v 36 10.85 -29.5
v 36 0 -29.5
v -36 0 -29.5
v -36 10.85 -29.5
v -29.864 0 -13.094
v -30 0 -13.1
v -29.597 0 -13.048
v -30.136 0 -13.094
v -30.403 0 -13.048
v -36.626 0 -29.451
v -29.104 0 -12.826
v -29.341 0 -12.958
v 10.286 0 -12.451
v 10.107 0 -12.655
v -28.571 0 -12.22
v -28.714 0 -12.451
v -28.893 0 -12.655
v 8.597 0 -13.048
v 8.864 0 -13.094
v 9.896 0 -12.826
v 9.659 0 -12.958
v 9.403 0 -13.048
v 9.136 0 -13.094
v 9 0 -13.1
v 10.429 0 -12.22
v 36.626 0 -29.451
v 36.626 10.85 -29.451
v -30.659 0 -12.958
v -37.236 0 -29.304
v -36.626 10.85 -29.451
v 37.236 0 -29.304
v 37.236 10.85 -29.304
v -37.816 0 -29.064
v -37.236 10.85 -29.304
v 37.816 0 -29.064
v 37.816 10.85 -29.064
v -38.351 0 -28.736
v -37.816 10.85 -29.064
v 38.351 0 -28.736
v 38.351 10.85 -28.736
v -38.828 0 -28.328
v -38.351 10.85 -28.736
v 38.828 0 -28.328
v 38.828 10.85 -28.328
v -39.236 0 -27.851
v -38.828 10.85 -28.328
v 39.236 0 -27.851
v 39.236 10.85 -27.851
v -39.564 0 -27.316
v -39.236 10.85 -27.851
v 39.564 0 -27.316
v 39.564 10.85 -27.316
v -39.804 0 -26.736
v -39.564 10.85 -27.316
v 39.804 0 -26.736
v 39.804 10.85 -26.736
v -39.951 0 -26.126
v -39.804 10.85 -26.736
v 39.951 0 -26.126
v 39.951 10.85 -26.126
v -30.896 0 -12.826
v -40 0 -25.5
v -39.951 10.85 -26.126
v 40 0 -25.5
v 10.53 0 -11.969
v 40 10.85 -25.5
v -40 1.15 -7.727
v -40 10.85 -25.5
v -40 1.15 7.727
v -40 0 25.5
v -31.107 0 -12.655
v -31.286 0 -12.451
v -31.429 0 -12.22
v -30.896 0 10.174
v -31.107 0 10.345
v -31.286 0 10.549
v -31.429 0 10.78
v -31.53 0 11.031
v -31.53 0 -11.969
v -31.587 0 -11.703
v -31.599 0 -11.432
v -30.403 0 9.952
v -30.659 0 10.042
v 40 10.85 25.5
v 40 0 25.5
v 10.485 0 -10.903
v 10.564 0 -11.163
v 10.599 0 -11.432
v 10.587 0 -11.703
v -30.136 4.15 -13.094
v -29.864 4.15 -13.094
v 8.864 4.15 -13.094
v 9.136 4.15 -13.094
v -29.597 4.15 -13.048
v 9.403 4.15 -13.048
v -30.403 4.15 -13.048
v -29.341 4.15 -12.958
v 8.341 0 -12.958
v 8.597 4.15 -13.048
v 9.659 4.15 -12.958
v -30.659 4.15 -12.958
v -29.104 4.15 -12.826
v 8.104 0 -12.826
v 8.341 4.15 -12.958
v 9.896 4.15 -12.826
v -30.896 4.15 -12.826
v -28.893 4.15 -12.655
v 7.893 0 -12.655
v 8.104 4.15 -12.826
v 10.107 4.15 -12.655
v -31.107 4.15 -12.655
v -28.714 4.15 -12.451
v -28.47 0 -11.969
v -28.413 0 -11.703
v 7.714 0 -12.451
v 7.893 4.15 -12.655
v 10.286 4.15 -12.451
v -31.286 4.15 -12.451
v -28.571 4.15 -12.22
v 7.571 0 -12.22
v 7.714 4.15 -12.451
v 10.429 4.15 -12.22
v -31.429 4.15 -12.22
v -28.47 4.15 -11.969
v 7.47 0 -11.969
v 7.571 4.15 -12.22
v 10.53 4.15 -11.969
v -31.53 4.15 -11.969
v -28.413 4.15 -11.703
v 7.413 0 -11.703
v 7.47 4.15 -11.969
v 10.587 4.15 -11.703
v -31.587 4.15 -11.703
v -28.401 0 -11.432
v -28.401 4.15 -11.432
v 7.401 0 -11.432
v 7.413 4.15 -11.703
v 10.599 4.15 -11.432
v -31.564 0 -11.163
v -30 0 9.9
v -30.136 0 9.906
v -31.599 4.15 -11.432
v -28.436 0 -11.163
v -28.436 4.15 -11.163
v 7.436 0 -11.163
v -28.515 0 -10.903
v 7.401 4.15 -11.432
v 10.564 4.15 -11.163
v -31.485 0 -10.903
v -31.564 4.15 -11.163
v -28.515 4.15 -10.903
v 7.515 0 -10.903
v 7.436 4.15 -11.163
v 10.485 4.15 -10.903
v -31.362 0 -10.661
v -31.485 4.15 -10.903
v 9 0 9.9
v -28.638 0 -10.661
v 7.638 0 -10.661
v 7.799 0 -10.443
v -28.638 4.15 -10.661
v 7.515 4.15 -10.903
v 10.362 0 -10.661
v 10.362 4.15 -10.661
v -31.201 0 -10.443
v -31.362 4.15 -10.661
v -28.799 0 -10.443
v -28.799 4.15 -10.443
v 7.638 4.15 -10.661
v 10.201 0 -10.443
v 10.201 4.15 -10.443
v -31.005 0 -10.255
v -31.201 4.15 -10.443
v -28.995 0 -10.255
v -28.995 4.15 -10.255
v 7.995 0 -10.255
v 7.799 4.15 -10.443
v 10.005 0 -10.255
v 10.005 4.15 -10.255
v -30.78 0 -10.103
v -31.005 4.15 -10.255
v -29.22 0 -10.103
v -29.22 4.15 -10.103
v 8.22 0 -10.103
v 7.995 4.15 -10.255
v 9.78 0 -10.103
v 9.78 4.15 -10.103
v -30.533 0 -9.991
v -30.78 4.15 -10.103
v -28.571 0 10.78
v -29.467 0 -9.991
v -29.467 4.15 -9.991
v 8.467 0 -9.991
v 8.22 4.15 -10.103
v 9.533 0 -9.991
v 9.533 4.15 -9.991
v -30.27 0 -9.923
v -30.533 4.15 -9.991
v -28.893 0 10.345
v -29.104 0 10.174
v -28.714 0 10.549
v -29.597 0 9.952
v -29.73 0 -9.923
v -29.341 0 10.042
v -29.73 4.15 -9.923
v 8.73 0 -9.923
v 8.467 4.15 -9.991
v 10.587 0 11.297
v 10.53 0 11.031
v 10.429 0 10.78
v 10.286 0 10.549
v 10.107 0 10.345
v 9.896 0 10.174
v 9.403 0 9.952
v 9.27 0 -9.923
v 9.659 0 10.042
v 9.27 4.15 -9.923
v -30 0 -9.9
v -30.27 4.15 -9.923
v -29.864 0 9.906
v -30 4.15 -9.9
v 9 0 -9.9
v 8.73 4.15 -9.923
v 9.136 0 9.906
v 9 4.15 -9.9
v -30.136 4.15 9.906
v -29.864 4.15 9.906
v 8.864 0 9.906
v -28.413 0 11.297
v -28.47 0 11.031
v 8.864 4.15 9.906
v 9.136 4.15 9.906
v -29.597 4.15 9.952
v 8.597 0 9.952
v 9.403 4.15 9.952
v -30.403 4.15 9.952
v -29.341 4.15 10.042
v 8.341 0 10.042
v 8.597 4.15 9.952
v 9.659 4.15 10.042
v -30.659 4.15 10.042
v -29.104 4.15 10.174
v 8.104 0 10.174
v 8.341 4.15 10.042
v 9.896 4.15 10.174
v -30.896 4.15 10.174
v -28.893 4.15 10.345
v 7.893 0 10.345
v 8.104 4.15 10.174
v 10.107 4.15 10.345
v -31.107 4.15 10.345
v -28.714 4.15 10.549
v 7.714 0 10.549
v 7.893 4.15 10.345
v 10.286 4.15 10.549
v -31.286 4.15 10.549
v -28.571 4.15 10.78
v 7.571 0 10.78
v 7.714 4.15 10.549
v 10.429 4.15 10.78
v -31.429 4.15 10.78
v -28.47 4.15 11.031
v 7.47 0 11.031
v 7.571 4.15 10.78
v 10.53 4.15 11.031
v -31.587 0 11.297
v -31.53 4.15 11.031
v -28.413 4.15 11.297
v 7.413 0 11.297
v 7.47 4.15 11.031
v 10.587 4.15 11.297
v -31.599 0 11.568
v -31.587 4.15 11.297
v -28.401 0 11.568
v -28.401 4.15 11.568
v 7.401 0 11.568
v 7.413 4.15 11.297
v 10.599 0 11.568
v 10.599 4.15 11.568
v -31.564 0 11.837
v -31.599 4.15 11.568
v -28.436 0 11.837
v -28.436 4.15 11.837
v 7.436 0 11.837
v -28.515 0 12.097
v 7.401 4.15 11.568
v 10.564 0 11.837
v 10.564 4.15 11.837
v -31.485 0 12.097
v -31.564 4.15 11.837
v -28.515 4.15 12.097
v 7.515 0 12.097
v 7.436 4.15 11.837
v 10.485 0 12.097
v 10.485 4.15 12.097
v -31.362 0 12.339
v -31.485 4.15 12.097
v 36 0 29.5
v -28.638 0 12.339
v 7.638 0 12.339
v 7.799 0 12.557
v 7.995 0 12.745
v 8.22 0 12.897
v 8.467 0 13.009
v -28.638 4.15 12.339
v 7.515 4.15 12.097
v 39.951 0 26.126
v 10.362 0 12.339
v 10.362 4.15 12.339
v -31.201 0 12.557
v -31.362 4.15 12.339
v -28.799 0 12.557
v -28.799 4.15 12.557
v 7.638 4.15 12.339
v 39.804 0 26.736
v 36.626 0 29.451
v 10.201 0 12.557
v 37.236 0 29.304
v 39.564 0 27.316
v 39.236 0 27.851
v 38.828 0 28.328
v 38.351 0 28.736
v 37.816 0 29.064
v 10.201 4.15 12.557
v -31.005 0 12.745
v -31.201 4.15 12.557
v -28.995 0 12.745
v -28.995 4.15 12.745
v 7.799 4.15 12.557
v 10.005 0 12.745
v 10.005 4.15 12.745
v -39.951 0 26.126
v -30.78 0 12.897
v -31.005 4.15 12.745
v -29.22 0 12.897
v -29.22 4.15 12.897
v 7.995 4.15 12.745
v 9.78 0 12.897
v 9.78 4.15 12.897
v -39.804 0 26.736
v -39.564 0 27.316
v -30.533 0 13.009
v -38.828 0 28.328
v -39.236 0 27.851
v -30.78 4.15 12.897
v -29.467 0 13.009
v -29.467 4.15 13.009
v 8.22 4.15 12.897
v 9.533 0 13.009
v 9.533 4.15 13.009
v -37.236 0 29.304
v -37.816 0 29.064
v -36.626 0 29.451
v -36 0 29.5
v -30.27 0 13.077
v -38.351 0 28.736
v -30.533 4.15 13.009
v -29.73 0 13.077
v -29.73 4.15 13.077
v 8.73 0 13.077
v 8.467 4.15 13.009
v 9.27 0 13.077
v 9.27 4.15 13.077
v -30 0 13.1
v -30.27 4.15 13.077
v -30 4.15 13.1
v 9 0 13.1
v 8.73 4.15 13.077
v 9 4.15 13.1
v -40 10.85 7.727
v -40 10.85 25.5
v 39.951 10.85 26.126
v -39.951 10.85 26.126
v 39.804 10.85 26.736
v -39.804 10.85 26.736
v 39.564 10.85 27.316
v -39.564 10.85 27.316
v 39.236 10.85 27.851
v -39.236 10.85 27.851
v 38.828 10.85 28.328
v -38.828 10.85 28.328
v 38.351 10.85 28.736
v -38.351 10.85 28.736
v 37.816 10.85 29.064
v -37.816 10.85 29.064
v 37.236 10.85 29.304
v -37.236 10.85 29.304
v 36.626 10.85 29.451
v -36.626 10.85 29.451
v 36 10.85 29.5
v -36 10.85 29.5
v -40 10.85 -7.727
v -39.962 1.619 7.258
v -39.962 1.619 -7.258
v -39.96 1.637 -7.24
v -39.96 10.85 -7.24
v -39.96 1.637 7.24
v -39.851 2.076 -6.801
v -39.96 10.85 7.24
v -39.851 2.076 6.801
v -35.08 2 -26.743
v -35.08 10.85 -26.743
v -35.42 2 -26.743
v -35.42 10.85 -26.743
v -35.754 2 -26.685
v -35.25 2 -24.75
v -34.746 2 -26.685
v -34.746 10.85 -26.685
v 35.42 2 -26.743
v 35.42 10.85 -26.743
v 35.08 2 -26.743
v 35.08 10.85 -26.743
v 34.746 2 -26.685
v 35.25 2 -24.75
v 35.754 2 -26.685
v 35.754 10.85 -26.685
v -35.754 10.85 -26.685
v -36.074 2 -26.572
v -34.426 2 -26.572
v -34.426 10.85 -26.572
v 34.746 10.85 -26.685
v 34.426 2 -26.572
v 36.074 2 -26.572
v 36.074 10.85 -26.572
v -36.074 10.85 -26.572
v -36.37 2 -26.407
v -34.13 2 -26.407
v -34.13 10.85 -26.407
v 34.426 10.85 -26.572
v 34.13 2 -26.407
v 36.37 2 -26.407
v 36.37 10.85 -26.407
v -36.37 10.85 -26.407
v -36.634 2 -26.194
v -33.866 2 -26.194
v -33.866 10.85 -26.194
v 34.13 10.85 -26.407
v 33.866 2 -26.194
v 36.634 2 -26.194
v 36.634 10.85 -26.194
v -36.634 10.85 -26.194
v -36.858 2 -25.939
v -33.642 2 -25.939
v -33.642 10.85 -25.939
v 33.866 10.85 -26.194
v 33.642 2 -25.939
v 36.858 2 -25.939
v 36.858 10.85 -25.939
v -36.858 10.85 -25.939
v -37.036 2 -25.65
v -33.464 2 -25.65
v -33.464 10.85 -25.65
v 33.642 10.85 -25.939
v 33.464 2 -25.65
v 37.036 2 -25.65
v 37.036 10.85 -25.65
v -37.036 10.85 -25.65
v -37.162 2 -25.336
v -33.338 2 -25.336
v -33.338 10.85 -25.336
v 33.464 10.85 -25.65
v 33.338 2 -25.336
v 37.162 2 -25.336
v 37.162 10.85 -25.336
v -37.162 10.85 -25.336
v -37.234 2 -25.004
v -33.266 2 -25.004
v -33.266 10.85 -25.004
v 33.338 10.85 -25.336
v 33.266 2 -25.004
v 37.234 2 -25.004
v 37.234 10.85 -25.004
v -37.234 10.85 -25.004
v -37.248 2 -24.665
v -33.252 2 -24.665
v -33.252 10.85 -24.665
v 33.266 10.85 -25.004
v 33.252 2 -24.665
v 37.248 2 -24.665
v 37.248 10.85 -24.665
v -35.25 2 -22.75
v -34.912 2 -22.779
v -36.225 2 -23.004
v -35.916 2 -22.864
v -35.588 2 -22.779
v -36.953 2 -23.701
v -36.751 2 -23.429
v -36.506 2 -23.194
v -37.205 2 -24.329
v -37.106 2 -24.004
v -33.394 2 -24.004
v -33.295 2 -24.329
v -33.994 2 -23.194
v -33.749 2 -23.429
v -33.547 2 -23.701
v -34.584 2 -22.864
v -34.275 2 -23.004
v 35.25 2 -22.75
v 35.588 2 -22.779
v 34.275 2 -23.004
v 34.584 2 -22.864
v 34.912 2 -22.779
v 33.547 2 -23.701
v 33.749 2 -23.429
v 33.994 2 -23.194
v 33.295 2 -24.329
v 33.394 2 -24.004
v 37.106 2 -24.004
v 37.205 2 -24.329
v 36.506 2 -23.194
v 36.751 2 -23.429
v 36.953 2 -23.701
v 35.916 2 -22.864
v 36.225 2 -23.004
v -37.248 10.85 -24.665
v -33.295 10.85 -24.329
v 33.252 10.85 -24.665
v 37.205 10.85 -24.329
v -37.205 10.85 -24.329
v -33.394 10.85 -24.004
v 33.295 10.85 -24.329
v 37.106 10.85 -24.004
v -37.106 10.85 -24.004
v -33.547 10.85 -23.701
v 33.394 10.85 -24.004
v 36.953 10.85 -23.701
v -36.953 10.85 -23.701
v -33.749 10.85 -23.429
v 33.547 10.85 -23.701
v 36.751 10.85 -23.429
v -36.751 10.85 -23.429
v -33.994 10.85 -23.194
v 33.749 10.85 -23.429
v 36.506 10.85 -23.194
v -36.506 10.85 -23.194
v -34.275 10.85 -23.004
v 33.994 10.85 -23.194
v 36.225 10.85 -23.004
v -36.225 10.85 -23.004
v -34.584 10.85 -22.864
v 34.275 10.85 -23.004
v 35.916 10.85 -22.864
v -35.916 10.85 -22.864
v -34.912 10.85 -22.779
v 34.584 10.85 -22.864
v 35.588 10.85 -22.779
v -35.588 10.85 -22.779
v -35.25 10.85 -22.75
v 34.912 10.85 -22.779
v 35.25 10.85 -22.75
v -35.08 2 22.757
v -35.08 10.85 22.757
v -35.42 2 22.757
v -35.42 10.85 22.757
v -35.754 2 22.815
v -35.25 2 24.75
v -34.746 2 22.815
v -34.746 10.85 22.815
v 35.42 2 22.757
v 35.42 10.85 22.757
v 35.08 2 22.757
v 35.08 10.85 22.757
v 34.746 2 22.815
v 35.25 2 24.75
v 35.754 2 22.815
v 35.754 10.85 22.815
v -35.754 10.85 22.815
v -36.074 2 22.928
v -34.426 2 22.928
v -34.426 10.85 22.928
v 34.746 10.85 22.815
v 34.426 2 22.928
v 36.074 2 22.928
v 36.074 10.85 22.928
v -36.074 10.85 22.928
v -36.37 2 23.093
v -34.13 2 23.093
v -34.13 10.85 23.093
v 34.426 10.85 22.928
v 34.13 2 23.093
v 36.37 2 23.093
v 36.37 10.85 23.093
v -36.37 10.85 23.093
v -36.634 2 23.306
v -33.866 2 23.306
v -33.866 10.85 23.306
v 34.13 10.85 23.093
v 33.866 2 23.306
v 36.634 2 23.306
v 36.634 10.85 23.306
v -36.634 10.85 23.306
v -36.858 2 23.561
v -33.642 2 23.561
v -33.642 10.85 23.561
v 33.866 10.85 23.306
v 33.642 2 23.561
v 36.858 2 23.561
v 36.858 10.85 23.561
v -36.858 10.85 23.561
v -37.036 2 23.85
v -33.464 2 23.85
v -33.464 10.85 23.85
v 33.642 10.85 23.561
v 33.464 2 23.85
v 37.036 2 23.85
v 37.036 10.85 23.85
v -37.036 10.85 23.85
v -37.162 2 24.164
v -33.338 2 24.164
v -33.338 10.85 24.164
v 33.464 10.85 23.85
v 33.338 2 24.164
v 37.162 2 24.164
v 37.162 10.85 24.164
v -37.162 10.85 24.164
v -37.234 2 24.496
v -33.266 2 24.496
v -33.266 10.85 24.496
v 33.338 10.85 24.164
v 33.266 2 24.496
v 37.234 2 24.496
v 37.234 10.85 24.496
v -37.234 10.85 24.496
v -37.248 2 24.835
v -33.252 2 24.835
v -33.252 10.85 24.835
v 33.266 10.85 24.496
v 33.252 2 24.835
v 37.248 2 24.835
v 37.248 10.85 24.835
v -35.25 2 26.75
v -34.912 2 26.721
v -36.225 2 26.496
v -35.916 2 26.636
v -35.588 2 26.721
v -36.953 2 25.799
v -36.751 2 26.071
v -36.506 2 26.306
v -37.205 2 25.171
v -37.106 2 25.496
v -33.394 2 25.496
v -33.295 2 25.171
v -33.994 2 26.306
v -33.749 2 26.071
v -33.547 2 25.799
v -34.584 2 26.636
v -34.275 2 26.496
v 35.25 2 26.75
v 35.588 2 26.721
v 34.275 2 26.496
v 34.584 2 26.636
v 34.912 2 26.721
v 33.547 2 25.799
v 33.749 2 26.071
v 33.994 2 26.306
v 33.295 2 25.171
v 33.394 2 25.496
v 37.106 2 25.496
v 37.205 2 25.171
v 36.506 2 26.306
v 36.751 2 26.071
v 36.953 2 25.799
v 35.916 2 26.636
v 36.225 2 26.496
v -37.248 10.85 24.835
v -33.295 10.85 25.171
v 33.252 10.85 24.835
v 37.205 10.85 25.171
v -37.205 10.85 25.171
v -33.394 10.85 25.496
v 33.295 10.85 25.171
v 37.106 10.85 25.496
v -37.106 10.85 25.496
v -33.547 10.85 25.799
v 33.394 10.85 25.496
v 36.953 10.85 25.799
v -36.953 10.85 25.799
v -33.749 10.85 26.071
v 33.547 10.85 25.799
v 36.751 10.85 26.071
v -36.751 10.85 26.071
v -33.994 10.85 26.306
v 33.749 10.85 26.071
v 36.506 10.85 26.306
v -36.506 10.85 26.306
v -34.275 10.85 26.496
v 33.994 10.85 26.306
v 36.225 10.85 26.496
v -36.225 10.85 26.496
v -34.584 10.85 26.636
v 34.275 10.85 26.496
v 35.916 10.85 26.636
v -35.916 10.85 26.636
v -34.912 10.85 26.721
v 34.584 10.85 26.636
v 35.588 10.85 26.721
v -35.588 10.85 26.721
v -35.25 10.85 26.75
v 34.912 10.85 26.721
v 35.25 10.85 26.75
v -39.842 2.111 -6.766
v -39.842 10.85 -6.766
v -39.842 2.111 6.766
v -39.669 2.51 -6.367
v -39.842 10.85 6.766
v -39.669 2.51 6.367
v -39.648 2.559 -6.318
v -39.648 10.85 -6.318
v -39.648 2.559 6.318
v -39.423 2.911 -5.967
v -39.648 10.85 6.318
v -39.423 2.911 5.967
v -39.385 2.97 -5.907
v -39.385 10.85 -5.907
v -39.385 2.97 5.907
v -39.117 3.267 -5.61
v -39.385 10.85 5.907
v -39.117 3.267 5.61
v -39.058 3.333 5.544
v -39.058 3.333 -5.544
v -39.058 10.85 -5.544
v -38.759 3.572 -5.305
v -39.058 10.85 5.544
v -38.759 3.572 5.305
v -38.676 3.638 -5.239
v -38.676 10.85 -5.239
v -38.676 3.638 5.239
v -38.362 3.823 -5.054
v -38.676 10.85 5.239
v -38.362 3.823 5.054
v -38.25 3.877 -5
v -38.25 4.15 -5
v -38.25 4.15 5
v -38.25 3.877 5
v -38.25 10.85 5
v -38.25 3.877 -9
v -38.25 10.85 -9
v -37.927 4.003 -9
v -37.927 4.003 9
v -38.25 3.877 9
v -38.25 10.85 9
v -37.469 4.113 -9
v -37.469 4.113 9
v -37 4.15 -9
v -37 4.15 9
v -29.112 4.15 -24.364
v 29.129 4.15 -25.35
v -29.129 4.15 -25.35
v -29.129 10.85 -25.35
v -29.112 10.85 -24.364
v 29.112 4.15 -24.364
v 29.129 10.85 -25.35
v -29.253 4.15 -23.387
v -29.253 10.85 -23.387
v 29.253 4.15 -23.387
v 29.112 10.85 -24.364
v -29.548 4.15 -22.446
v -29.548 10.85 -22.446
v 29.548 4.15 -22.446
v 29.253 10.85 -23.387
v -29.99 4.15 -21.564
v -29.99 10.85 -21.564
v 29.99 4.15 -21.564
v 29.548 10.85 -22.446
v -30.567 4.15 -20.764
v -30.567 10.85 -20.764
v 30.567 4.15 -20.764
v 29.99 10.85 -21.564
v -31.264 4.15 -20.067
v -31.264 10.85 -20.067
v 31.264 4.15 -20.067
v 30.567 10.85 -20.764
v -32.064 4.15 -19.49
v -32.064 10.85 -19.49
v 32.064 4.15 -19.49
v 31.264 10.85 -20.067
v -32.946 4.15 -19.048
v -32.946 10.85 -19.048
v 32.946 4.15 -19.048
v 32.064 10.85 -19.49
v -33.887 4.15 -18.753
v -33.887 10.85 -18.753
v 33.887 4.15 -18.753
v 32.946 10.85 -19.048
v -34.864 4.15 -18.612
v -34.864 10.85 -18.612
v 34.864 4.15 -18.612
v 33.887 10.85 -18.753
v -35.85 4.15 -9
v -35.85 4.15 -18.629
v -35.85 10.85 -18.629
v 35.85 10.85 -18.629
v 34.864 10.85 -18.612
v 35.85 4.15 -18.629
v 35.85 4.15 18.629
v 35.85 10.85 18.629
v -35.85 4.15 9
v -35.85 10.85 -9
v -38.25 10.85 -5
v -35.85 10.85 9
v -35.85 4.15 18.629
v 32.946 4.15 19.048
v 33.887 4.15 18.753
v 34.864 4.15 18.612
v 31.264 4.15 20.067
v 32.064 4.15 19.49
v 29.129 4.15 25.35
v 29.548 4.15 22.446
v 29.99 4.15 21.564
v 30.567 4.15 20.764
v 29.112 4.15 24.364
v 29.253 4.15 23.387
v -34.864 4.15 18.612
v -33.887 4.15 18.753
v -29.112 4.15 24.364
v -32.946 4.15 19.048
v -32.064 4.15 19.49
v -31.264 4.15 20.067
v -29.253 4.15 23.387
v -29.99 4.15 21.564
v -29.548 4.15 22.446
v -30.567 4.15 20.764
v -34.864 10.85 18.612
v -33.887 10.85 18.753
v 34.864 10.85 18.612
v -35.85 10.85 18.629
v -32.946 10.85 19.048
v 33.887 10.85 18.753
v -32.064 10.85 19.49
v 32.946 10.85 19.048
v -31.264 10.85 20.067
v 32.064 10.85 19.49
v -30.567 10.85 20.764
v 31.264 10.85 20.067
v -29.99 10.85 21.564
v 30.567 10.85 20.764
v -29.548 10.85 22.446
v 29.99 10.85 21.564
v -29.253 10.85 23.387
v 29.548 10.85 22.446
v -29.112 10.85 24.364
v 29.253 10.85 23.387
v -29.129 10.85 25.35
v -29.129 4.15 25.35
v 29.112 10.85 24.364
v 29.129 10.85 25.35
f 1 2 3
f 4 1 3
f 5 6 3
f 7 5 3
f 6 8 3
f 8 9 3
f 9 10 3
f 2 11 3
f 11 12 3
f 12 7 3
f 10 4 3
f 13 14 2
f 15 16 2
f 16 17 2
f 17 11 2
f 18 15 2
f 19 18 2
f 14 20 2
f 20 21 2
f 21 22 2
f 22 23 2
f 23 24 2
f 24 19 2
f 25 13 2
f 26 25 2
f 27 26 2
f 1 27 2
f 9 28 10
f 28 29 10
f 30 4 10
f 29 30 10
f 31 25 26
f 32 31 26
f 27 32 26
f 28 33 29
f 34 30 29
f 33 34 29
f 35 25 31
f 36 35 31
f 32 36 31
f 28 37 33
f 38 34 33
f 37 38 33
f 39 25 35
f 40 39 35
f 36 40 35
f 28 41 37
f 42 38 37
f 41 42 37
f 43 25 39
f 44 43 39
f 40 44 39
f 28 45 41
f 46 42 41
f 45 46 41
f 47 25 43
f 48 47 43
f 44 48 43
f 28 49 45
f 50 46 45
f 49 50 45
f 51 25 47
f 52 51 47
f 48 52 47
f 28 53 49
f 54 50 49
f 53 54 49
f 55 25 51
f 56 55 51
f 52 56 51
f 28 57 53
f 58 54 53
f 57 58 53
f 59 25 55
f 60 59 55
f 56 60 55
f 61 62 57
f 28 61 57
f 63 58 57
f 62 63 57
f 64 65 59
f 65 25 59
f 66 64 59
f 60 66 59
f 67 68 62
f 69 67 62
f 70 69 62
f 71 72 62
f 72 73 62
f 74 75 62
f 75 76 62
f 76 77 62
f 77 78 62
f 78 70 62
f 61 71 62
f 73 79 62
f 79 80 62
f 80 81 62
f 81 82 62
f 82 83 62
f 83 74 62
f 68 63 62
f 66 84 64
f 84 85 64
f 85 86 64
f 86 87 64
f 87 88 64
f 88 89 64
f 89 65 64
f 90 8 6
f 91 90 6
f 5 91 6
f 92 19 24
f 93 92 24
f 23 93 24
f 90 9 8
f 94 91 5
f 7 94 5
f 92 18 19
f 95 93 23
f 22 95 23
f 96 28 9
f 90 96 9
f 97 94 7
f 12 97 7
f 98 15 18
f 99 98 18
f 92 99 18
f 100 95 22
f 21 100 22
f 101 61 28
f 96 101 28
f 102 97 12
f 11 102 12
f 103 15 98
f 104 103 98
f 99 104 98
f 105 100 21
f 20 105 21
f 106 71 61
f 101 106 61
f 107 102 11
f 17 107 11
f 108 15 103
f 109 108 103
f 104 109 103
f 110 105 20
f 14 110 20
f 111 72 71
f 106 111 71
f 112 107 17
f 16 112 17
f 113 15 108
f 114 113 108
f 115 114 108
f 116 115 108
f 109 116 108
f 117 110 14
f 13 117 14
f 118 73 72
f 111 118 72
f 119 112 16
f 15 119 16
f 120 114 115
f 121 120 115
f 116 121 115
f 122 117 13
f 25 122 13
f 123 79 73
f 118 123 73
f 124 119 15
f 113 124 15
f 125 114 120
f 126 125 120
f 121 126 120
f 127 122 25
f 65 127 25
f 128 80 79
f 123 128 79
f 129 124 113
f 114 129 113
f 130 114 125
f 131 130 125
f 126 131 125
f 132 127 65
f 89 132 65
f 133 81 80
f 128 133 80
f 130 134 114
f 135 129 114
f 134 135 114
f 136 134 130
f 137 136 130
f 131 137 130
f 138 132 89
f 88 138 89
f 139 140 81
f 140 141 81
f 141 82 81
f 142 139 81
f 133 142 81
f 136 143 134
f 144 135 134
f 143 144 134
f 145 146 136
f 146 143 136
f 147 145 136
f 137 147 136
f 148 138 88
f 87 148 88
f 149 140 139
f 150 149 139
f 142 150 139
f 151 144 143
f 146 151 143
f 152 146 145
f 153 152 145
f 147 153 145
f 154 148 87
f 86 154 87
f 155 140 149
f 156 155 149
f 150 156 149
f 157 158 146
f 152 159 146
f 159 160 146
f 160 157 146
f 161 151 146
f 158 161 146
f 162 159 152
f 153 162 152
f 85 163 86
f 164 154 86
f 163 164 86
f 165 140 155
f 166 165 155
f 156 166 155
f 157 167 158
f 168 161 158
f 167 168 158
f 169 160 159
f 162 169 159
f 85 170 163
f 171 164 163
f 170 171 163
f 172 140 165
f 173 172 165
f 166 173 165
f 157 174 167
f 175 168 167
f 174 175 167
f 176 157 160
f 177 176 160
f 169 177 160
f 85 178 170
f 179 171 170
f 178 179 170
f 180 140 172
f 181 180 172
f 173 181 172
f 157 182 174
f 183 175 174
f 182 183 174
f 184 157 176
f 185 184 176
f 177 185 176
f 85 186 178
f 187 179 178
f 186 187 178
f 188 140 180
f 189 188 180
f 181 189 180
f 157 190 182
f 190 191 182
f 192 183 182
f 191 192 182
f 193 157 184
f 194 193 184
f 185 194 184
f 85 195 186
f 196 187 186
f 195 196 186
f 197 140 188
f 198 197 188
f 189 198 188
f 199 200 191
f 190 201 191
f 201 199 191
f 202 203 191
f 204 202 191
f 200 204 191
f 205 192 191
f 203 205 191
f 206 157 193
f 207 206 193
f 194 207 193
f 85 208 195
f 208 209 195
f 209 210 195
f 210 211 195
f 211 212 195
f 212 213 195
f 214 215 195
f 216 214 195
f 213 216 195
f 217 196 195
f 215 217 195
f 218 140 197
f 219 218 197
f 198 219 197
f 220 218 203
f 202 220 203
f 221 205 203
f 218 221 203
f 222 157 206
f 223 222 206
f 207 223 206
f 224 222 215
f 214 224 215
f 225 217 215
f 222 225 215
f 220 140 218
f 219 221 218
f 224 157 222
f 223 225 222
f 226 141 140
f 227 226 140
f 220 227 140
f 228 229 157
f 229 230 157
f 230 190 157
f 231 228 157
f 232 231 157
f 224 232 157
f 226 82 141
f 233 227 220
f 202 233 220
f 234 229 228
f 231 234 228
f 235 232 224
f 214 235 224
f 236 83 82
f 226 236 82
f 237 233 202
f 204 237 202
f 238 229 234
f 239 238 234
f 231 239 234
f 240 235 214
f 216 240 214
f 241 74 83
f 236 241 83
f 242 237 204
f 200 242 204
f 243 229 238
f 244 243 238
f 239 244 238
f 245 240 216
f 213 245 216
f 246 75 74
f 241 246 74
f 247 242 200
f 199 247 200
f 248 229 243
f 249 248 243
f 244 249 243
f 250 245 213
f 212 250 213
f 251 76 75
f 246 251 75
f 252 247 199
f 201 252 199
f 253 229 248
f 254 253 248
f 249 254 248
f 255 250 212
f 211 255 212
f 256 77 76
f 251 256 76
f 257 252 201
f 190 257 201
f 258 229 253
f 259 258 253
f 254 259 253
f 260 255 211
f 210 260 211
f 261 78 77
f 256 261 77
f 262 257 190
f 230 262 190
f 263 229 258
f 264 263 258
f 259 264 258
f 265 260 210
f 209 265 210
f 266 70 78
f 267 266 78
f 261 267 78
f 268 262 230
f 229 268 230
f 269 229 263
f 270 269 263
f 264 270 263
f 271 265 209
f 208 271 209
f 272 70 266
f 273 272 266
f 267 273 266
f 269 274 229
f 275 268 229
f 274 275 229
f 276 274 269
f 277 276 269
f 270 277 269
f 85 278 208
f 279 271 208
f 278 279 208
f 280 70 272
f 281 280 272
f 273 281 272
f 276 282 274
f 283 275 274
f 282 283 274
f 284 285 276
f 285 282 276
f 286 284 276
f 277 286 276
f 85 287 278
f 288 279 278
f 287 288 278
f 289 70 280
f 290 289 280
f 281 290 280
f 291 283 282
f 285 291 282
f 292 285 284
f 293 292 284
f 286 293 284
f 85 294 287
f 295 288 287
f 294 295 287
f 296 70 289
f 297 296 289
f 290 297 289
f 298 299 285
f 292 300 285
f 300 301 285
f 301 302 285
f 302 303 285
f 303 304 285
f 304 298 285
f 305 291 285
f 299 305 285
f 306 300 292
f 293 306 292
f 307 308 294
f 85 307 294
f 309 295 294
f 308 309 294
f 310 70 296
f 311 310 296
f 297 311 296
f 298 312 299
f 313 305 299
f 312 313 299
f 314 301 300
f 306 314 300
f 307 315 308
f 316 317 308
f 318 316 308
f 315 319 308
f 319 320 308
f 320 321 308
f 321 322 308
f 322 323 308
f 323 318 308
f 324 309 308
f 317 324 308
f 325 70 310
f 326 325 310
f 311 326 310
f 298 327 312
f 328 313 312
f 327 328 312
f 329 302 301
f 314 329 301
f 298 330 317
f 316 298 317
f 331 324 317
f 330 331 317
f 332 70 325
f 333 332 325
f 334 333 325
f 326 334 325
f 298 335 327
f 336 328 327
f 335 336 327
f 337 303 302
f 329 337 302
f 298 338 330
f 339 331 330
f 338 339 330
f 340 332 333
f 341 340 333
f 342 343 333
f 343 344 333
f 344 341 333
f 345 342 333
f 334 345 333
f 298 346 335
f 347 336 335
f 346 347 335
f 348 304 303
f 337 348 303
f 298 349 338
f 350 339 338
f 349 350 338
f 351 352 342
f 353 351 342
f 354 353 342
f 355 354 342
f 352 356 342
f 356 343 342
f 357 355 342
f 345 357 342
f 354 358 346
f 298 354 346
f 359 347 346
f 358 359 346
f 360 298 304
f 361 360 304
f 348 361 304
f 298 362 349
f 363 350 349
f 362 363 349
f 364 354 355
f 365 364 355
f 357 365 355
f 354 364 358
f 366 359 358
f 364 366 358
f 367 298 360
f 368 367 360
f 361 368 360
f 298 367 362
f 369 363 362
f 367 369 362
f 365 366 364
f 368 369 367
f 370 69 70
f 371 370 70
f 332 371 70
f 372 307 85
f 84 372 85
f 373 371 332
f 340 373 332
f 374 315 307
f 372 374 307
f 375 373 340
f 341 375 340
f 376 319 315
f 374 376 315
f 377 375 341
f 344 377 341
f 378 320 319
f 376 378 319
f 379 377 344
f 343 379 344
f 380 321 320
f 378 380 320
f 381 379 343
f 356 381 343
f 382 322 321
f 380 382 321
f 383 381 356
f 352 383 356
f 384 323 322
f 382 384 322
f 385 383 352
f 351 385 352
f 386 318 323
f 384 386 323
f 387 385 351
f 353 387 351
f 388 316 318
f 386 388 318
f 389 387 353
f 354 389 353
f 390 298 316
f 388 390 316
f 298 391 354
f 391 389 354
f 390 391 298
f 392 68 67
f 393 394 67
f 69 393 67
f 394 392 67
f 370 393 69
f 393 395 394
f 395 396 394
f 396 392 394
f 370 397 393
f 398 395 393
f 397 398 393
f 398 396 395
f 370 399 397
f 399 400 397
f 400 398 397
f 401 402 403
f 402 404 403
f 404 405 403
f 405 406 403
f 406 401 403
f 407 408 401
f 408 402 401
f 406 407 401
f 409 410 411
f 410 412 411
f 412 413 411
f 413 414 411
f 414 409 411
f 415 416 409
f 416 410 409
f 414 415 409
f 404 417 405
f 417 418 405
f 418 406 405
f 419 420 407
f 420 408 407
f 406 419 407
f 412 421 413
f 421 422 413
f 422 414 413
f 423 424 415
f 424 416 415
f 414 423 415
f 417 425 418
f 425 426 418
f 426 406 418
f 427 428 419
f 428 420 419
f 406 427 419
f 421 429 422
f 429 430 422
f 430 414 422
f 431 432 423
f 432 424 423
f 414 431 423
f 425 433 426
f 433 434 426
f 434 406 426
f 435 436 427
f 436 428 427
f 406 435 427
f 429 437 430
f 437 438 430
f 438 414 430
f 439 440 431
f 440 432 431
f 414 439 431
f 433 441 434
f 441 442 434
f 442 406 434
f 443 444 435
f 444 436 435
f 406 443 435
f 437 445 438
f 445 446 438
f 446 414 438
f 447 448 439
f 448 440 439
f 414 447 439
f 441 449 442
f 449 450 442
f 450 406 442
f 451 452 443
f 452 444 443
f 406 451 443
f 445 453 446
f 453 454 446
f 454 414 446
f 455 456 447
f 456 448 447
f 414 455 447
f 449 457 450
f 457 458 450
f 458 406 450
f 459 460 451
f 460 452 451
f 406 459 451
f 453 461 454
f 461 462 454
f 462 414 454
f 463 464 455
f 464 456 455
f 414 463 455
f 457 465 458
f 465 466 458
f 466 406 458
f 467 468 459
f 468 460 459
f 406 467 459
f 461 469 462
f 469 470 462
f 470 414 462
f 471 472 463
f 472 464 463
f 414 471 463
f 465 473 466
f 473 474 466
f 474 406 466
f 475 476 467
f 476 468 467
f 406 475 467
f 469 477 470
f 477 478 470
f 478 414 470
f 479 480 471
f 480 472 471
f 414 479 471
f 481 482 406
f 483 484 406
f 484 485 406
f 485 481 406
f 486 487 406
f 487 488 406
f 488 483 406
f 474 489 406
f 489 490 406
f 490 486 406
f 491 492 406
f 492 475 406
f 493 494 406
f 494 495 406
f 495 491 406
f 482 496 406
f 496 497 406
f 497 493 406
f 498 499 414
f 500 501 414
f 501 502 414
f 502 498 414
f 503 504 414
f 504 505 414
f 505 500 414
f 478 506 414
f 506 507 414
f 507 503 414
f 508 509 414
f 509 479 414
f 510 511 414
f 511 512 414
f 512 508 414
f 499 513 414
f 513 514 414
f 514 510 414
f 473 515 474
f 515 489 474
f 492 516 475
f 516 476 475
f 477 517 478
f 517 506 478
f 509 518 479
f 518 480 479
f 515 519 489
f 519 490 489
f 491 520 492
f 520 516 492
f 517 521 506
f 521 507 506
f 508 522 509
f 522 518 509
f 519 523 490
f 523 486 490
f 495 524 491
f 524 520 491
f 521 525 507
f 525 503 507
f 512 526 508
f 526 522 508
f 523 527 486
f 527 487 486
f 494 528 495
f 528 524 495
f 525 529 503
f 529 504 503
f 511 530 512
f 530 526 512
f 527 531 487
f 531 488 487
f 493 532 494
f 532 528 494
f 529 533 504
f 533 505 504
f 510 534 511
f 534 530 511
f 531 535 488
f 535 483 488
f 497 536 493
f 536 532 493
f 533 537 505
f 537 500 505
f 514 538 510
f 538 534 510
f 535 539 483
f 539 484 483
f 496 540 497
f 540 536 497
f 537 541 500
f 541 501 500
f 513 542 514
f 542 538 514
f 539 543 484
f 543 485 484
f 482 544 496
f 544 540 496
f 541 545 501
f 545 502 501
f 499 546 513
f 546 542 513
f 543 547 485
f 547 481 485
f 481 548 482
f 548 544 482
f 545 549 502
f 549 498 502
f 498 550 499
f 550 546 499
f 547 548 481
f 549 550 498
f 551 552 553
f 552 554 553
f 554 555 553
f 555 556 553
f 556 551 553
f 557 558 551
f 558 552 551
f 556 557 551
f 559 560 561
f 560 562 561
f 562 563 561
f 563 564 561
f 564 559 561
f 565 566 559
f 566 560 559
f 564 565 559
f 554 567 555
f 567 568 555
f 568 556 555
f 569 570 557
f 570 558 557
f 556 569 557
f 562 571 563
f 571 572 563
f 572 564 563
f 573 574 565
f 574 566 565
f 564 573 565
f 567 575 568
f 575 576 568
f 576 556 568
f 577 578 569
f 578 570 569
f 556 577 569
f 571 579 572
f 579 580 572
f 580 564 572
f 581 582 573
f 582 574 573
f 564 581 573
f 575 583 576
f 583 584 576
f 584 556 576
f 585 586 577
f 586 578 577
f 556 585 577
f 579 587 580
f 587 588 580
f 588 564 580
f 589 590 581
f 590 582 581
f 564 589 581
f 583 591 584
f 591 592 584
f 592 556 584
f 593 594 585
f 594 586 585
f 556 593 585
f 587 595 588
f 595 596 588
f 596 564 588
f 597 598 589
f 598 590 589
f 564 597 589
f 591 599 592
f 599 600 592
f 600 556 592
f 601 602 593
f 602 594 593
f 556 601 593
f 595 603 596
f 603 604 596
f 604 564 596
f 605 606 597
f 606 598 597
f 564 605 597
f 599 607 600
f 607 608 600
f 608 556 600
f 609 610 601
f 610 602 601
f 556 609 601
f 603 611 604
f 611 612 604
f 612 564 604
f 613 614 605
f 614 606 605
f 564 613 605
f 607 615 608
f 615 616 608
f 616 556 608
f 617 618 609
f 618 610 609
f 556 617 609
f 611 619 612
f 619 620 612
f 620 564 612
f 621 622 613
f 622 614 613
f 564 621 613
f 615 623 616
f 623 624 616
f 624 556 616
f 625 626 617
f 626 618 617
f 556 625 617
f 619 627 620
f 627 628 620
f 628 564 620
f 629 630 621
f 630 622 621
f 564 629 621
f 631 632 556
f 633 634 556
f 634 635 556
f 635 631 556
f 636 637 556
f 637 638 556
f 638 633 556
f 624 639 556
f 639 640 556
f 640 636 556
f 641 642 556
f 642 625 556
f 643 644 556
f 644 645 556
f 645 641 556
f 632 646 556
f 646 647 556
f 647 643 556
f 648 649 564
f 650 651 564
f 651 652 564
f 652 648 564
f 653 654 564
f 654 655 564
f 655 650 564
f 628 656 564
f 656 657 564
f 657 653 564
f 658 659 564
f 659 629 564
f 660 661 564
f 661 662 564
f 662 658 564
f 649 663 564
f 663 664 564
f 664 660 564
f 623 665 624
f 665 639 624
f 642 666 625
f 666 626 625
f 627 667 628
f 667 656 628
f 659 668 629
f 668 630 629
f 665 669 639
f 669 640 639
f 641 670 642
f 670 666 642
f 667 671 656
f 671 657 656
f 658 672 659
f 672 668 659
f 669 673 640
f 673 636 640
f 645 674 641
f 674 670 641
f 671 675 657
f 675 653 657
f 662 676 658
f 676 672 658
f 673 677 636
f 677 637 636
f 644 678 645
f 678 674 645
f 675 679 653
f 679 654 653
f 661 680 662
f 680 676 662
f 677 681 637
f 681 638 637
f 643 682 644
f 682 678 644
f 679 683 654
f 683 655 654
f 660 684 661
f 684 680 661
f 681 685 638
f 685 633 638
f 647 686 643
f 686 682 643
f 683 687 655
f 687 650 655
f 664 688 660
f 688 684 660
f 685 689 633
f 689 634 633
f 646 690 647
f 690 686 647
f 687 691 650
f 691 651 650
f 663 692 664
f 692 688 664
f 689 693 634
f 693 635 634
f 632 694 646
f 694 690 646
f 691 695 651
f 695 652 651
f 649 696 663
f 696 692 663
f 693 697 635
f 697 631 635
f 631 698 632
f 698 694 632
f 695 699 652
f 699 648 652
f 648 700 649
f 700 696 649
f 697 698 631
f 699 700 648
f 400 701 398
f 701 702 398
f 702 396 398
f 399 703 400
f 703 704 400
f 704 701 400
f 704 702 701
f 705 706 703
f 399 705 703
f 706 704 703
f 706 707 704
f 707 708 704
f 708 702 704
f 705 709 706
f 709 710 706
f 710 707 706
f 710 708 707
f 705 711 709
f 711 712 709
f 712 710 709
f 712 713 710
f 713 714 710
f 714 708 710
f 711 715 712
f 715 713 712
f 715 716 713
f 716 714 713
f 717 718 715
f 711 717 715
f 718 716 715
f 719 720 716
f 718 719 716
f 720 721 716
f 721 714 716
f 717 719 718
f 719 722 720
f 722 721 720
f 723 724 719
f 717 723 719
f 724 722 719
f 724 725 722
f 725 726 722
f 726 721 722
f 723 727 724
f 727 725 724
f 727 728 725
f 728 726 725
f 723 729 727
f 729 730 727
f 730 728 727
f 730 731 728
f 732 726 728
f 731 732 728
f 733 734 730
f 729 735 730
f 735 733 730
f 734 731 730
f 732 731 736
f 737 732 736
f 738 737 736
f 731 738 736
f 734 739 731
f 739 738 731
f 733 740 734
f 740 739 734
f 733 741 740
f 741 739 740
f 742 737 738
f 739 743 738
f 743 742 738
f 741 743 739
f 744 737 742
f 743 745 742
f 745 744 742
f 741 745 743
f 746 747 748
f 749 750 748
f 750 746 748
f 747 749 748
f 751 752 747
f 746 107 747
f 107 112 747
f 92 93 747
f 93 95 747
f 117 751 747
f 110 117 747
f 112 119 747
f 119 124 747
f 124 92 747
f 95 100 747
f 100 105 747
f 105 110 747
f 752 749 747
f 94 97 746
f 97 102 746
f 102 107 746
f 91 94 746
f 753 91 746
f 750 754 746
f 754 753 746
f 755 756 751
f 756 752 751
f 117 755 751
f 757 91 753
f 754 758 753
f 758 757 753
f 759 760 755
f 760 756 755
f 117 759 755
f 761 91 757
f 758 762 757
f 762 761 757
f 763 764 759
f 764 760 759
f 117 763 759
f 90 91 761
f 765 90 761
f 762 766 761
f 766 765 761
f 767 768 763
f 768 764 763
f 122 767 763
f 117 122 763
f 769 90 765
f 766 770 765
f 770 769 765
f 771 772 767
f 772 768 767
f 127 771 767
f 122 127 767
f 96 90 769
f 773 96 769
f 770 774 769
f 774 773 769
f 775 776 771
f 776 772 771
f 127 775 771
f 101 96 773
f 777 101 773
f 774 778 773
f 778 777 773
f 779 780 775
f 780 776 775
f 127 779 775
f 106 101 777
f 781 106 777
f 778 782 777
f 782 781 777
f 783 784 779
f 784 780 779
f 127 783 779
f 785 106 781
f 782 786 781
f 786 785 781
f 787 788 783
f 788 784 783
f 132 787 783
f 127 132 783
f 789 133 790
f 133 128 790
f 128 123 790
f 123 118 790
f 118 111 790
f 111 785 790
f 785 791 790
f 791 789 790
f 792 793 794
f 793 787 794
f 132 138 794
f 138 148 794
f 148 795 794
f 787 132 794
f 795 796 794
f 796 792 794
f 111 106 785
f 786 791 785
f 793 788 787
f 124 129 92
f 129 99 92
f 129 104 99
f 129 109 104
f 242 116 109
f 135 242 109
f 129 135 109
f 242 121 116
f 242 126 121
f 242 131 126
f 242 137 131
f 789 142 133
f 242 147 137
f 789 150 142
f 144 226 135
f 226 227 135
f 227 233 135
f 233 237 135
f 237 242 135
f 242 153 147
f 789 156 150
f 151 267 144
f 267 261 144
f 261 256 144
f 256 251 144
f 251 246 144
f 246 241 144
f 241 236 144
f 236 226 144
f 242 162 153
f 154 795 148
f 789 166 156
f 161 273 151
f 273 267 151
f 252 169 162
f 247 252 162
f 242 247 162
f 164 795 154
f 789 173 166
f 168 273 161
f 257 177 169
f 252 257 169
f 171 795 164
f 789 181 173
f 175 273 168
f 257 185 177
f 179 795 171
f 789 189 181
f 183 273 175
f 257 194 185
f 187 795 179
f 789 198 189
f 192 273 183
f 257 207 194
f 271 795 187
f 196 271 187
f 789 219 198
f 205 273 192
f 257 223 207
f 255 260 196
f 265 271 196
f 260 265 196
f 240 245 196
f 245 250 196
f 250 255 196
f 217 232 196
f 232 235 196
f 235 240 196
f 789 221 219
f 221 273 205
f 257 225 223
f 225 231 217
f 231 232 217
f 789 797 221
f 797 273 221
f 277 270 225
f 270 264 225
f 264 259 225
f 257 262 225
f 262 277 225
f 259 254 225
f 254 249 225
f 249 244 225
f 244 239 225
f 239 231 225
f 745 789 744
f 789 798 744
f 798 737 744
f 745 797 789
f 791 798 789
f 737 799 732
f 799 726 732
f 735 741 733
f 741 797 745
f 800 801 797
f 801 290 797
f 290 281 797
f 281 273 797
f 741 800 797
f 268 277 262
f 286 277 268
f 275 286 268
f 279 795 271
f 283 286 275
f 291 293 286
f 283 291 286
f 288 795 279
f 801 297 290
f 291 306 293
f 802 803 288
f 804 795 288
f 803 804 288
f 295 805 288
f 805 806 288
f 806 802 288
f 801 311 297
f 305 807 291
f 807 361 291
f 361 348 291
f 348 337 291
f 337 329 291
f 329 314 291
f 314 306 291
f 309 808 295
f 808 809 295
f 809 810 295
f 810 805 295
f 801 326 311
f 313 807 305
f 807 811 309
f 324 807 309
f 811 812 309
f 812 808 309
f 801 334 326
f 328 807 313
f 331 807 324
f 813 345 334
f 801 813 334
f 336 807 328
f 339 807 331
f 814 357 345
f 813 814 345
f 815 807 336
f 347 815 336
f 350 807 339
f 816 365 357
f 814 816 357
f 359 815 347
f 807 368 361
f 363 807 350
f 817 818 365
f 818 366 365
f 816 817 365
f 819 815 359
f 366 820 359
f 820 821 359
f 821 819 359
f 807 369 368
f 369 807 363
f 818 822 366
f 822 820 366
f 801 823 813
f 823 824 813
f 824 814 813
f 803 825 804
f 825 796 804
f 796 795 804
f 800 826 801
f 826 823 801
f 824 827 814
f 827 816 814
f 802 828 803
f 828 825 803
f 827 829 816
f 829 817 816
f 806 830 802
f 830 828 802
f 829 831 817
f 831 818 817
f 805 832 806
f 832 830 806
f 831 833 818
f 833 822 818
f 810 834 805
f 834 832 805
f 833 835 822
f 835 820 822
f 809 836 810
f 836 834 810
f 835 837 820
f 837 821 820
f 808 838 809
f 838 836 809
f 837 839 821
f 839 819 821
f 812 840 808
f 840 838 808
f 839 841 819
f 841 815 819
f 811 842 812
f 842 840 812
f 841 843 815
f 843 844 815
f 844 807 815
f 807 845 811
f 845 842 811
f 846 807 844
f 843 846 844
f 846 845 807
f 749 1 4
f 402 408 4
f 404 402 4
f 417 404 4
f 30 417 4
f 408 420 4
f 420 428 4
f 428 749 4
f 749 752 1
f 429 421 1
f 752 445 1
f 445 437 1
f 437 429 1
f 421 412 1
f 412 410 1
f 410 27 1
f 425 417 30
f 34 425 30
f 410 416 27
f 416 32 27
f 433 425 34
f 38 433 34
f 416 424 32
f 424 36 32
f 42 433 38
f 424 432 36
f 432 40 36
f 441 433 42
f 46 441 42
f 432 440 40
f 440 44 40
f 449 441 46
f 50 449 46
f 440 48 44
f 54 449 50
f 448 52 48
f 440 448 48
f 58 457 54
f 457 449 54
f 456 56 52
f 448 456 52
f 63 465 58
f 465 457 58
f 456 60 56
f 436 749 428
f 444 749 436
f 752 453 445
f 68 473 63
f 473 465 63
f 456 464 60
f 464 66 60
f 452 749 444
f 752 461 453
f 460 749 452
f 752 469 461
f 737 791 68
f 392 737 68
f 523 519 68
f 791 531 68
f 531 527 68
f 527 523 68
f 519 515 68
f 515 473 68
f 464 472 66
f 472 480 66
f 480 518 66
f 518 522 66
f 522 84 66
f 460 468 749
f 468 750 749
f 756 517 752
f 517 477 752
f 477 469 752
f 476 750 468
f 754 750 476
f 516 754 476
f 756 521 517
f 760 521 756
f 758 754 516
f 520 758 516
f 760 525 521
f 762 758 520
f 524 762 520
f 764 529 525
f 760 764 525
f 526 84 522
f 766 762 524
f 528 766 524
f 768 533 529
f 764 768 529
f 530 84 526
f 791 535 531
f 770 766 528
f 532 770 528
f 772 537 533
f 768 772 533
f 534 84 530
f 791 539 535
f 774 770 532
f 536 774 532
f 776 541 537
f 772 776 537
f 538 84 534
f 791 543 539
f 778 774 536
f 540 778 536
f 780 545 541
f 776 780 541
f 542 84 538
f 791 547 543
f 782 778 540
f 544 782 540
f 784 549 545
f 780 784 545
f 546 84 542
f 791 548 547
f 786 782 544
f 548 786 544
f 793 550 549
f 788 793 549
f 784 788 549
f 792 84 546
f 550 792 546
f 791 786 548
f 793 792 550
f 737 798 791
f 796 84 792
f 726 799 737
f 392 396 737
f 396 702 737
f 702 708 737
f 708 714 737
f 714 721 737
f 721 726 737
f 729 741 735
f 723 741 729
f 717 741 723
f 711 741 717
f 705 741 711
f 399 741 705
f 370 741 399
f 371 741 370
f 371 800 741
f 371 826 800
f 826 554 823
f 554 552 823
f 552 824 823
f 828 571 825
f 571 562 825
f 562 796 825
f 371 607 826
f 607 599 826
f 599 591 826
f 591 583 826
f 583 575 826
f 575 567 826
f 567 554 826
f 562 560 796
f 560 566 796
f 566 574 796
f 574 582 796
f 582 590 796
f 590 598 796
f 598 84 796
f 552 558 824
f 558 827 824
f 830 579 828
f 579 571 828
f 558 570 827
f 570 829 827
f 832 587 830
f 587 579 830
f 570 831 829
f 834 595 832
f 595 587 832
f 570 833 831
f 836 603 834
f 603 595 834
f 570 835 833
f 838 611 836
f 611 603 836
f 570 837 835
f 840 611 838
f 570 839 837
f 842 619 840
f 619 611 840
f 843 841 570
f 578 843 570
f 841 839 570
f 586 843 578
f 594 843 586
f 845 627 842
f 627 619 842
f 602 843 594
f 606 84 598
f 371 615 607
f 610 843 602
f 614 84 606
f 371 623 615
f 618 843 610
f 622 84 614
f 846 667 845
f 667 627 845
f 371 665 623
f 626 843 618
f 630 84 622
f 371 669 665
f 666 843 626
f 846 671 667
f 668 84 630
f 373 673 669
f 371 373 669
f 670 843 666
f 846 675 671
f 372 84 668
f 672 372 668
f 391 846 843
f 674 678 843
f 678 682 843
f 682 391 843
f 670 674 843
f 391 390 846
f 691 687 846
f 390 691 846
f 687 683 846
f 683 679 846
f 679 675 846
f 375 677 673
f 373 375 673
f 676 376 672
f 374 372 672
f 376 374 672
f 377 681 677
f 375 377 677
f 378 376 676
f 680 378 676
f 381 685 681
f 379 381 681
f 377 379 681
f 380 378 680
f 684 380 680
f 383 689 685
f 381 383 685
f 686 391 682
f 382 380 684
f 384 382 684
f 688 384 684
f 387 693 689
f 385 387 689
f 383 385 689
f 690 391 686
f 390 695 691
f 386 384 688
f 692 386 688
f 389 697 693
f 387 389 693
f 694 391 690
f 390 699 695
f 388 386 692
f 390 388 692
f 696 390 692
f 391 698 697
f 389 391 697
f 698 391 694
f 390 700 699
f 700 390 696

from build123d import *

# Parameters (mm, degrees)
SKETCH1_W           = 80
SKETCH1_H           = 59
BOSS_EXTRUDE1_DEPTH = 10.85
SKETCH2_R           = 2
CUT_EXTRUDE1_DEPTH  = 8.85
SHELL3_START        = 4.15
SHELL3_DEPTH        = 6.7
SKETCH3_R           = 1.6
CUT_EXTRUDE2_DEPTH  = 8.85
SKETCH4_W           = 10
SKETCH4_H           = 6.7
CUT_EXTRUDE3_DEPTH  = 8.85
SKETCH5_W           = 2.4
SKETCH5_H           = 18
CUT_EXTRUDE4_DEPTH  = 6.7
FILLET1_R           = 4
FILLET2_R           = 3


# Read off the part's stored shape, not the designer's step: Shell3
with BuildPart() as part:
    # Sketch1 → Boss-Extrude1 (new body)
    with BuildSketch(Plane(origin=(0, 0, 0), x_dir=(1, 0, 0), z_dir=(0, 1, 0))):
        Rectangle(SKETCH1_W, SKETCH1_H)
    extrude(amount=BOSS_EXTRUDE1_DEPTH)

    # Sketch2 → Cut-Extrude1 (cut)
    with BuildSketch(Plane(origin=(0, 10.85, 0), x_dir=(1, 0, 0), z_dir=(0, 1, 0))):
        with Locations(Location((-35.25, 24.75, 0), (0, 0, 270))):
            Circle(SKETCH2_R)
        with Locations(Location((-35.25, -24.75, 0), (0, 0, 270))):
            Circle(SKETCH2_R)
        with Locations(Location((35.25, 24.75, 0), (0, 0, 270))):
            Circle(SKETCH2_R)
        with Locations(Location((35.25, -24.75, 0), (0, 0, 270))):
            Circle(SKETCH2_R)
    extrude(amount=-CUT_EXTRUDE1_DEPTH, mode=Mode.SUBTRACT)

    # Shell3 outline → Shell3 (cut)
    with BuildSketch(Plane(origin=(0, 0, 0), x_dir=(1, 0, 0), z_dir=(0, 1, 0)).offset(SHELL3_START)):
        with BuildLine():
            ThreePointArc((-35.85, -18.629338271), (-30.901293296, -20.401293296), (-29.129338271, -25.35))
            Line((-29.129338271, -25.35), (29.129338271, -25.35))
            ThreePointArc((29.129338271, -25.35), (30.901293296, -20.401293296), (35.85, -18.629338271))
            Line((35.85, -18.629338271), (35.85, 18.629338271))
            ThreePointArc((35.85, 18.629338271), (30.901293296, 20.401293296), (29.129338271, 25.35))
            Line((29.129338271, 25.35), (-29.129338271, 25.35))
            ThreePointArc((-29.129338271, 25.35), (-30.901293296, 20.401293296), (-35.85, 18.629338271))
            Line((-35.85, 18.629338271), (-35.85, -18.629338271))
        make_face()
    extrude(amount=SHELL3_DEPTH, mode=Mode.SUBTRACT)

    # Sketch3 → Cut-Extrude2 (cut)
    with BuildSketch(Plane(origin=(0, 4.15, 0), x_dir=(1, 0, 0), z_dir=(0, 1, 0))):
        with Locations(Location((-30, -11.5, 0), (0, 0, 270))):
            Circle(SKETCH3_R)
        with Locations(Location((9, -11.5, 0), (0, 0, 270))):
            Circle(SKETCH3_R)
        with Locations(Location((9, 11.5, 0), (0, 0, 270))):
            Circle(SKETCH3_R)
        with Locations(Location((-30, 11.5, 0), (0, 0, 270))):
            Circle(SKETCH3_R)
    extrude(amount=-CUT_EXTRUDE2_DEPTH, mode=Mode.SUBTRACT)

    # Sketch4 → Cut-Extrude3 (cut)
    with BuildSketch(Plane.ZY.offset(40)):
        with Locations((0, 7.5)):
            Rectangle(SKETCH4_W, SKETCH4_H)
    extrude(amount=-CUT_EXTRUDE3_DEPTH, mode=Mode.SUBTRACT)

    # Sketch5 → Cut-Extrude4 (cut)
    with BuildSketch(Plane(origin=(0, 10.85, 0), x_dir=(1, 0, 0), z_dir=(0, 1, 0))):
        with Locations((-37.05, 0)):
            Rectangle(SKETCH5_W, SKETCH5_H)
    extrude(amount=-CUT_EXTRUDE4_DEPTH, mode=Mode.SUBTRACT)

    # Fillet1
    fillet1_edges = [part.edges().sort_by_distance(p)[0] for p in [
        (40, 5.425, 29.5),
        (-40, 5.425, 29.5),
        (-40, 5.425, -29.5),
        (40, 5.425, -29.5),
    ]]
    fillet(fillet1_edges, radius=FILLET1_R)

    # Fillet2
    # the kernel refuses this fillet: 3 mm, written as the material it takes off along each edge
    with BuildSketch(Plane(origin=(-40, 17.667945072, -5), x_dir=(0, 0, -1), z_dir=(0, -1, 0)), Plane(origin=(-40, 4.15, 5), x_dir=(0, 0, 1), z_dir=(0, 1, 0))) as fillet2_piece_1:
        with BuildLine():
            CenterArc((2.727178029, 3), FILLET2_R, 204.624318352, 65.375681648)
            Line((0, 1.75), (-0.054543561, 1.725))
            ThreePointArc((-0.054543561, 1.725), (-0.06, 0.875), (-0.06, 0))
            Line((-0.06, 0), (0, -0.06))
            Line((0, -0.06), (2.727178029, -0.06))
            Line((2.727178029, -0.06), (2.727178029, 0))
        make_face()
    extrude(amount=13.517945072, mode=Mode.SUBTRACT)
    with BuildSketch(Plane(origin=(-40, 4.15, -12.5), x_dir=(0, -1, 0), z_dir=(0, 0, 1))) as fillet2_piece_2_section:
        with BuildLine():
            CenterArc((FILLET2_R, FILLET2_R), FILLET2_R, 180, 90)
            Line((0, FILLET2_R), (-FILLET2_R * 0.02, FILLET2_R))
            Line((-FILLET2_R * 0.02, FILLET2_R), (-FILLET2_R * 0.02, -FILLET2_R * 0.02))
            Line((-FILLET2_R * 0.02, -FILLET2_R * 0.02), (FILLET2_R, -FILLET2_R * 0.02))
            Line((FILLET2_R, -FILLET2_R * 0.02), (FILLET2_R, 0))
        make_face()
    fillet2_piece_2 = extrude(amount=17.5, mode=Mode.PRIVATE)
    fillet2_piece_2 = split(fillet2_piece_2, bisect_by=Plane(origin=(-37.813587666, 4.113532684, -5), z_dir=(0, 0, -1)), keep=Keep.TOP, mode=Mode.PRIVATE)
    fillet2_piece_2 = split(fillet2_piece_2, bisect_by=Plane(origin=(-38.25, 4.113532684, -7), z_dir=(1, 0, 0)), keep=Keep.TOP, mode=Mode.PRIVATE)
    fillet2_piece_2 = split(fillet2_piece_2, bisect_by=Plane(origin=(-37.813587666, 4.113532684, -9), z_dir=(0, 0, 1)), keep=Keep.TOP, mode=Mode.PRIVATE)
    add(fillet2_piece_2, mode=Mode.SUBTRACT)
    with BuildSketch(Plane(origin=(-40, 4.15, -5), x_dir=(0, -1, 0), z_dir=(0, 0, 1))) as fillet2_piece_3_section:
        with BuildLine():
            CenterArc((FILLET2_R, FILLET2_R), FILLET2_R, 180, 90)
            Line((0, FILLET2_R), (-FILLET2_R * 0.02, FILLET2_R))
            Line((-FILLET2_R * 0.02, FILLET2_R), (-FILLET2_R * 0.02, -FILLET2_R * 0.02))
            Line((-FILLET2_R * 0.02, -FILLET2_R * 0.02), (FILLET2_R, -FILLET2_R * 0.02))
            Line((FILLET2_R, -FILLET2_R * 0.02), (FILLET2_R, 0))
        make_face()
    fillet2_piece_3 = extrude(amount=10, mode=Mode.PRIVATE)
    fillet2_piece_3 = split(fillet2_piece_3, bisect_by=Plane(origin=(-38.25, 3.413957666, 0), z_dir=(-1, 0, 0)), keep=Keep.TOP, mode=Mode.PRIVATE)
    add(fillet2_piece_3, mode=Mode.SUBTRACT)
    with BuildSketch(Plane(origin=(-40, 4.15, -5), x_dir=(0, -1, 0), z_dir=(0, 0, 1))) as fillet2_piece_4_section:
        with BuildLine():
            CenterArc((FILLET2_R, FILLET2_R), FILLET2_R, 180, 90)
            Line((0, FILLET2_R), (-FILLET2_R * 0.02, FILLET2_R))
            Line((-FILLET2_R * 0.02, FILLET2_R), (-FILLET2_R * 0.02, -FILLET2_R * 0.02))
            Line((-FILLET2_R * 0.02, -FILLET2_R * 0.02), (FILLET2_R, -FILLET2_R * 0.02))
            Line((FILLET2_R, -FILLET2_R * 0.02), (FILLET2_R, 0))
        make_face()
    fillet2_piece_4 = extrude(amount=10, mode=Mode.PRIVATE)
    fillet2_piece_4 = split(fillet2_piece_4, bisect_by=Plane(origin=(-38.25, 4.113532684, 0), z_dir=(1, 0, 0)), keep=Keep.TOP, mode=Mode.PRIVATE)
    add(fillet2_piece_4, mode=Mode.SUBTRACT)
    with BuildSketch(Plane(origin=(-40, 4.15, -5), x_dir=(0, -1, 0), z_dir=(0, 0, 1))) as fillet2_piece_5_section:
        with BuildLine():
            CenterArc((FILLET2_R, FILLET2_R), FILLET2_R, 180, 90)
            Line((0, FILLET2_R), (-FILLET2_R * 0.02, FILLET2_R))
            Line((-FILLET2_R * 0.02, FILLET2_R), (-FILLET2_R * 0.02, -FILLET2_R * 0.02))
            Line((-FILLET2_R * 0.02, -FILLET2_R * 0.02), (FILLET2_R, -FILLET2_R * 0.02))
            Line((FILLET2_R, -FILLET2_R * 0.02), (FILLET2_R, 0))
        make_face()
    fillet2_piece_5 = extrude(amount=17.5, mode=Mode.PRIVATE)
    fillet2_piece_5 = split(fillet2_piece_5, bisect_by=Plane(origin=(-38.25, 4.113532684, 7), z_dir=(1, 0, 0)), keep=Keep.TOP, mode=Mode.PRIVATE)
    fillet2_piece_5 = split(fillet2_piece_5, bisect_by=Plane(origin=(-37.813587666, 4.113532684, 5), z_dir=(0, 0, 1)), keep=Keep.TOP, mode=Mode.PRIVATE)
    fillet2_piece_5 = split(fillet2_piece_5, bisect_by=Plane(origin=(-37.813587666, 4.113532684, 9), z_dir=(0, 0, -1)), keep=Keep.TOP, mode=Mode.PRIVATE)
    add(fillet2_piece_5, mode=Mode.SUBTRACT)
    with BuildSketch(Plane(origin=(-40, 17.667945072, -5), x_dir=(0, 0, -1), z_dir=(0, -1, 0))) as fillet2_piece_6a_section:
        with BuildLine():
            CenterArc((2.727178029, 3), FILLET2_R, 204.624318352, 65.375681648)
            Line((0, 1.75), (-0.054543561, 1.725))
            ThreePointArc((-0.054543561, 1.725), (-0.06, 0.875), (-0.06, 0))
            Line((-0.06, 0), (0, -0.06))
            Line((0, -0.06), (2.727178029, -0.06))
            Line((2.727178029, -0.06), (2.727178029, 0))
        make_face()
    fillet2_piece_6a = extrude(amount=20.335890143, mode=Mode.PRIVATE)
    fillet2_piece_6a = split(fillet2_piece_6a, bisect_by=Plane(origin=(-39.546962739, 4.15, -5.666780032), z_dir=(0, -1, 0)), keep=Keep.TOP, mode=Mode.PRIVATE)
    with BuildSketch(Plane(origin=(-40, 4.15, -12.5), x_dir=(0, -1, 0), z_dir=(0, 0, 1))) as fillet2_piece_6b_section:
        with BuildLine():
            CenterArc((FILLET2_R, FILLET2_R), FILLET2_R, 180, 90)
            Line((0, FILLET2_R), (-FILLET2_R * 0.02, FILLET2_R))
            Line((-FILLET2_R * 0.02, FILLET2_R), (-FILLET2_R * 0.02, -FILLET2_R * 0.02))
            Line((-FILLET2_R * 0.02, -FILLET2_R * 0.02), (FILLET2_R, -FILLET2_R * 0.02))
            Line((FILLET2_R, -FILLET2_R * 0.02), (FILLET2_R, 0))
        make_face()
    fillet2_piece_6b = extrude(amount=17.5, mode=Mode.PRIVATE)
    fillet2_piece_6b = split(fillet2_piece_6b, bisect_by=Plane(origin=(-39.454149009, 3.413957666, -5), z_dir=(0, 0, -1)), keep=Keep.TOP, mode=Mode.PRIVATE)
    fillet2_piece_6b = split(fillet2_piece_6b, bisect_by=Plane(origin=(-38.25, 3.413957666, -7), z_dir=(-1, 0, 0)), keep=Keep.TOP, mode=Mode.PRIVATE)
    fillet2_piece_6b = split(fillet2_piece_6b, bisect_by=Plane(origin=(-39.454149009, 3.413957666, -9), z_dir=(0, 0, 1)), keep=Keep.TOP, mode=Mode.PRIVATE)
    fillet2_piece_6 = fillet2_piece_6a & fillet2_piece_6b
    add(fillet2_piece_6, mode=Mode.SUBTRACT)
    with BuildSketch(Plane(origin=(-40, -2.667945072, 5), x_dir=(0, 0, 1), z_dir=(0, 1, 0))) as fillet2_piece_7a_section:
        with BuildLine():
            CenterArc((2.727178029, 3), FILLET2_R, 204.624318352, 65.375681648)
            Line((0, 1.75), (-0.054543561, 1.725))
            ThreePointArc((-0.054543561, 1.725), (-0.06, 0.875), (-0.06, 0))
            Line((-0.06, 0), (0, -0.06))
            Line((0, -0.06), (2.727178029, -0.06))
            Line((2.727178029, -0.06), (2.727178029, 0))
        make_face()
    fillet2_piece_7a = extrude(amount=20.335890143, mode=Mode.PRIVATE)
    fillet2_piece_7a = split(fillet2_piece_7a, bisect_by=Plane(origin=(-39.546962739, 4.15, 5.666780032), z_dir=(0, -1, 0)), keep=Keep.TOP, mode=Mode.PRIVATE)
    with BuildSketch(Plane(origin=(-40, 4.15, -5), x_dir=(0, -1, 0), z_dir=(0, 0, 1))) as fillet2_piece_7b_section:
        with BuildLine():
            CenterArc((FILLET2_R, FILLET2_R), FILLET2_R, 180, 90)
            Line((0, FILLET2_R), (-FILLET2_R * 0.02, FILLET2_R))
            Line((-FILLET2_R * 0.02, FILLET2_R), (-FILLET2_R * 0.02, -FILLET2_R * 0.02))
            Line((-FILLET2_R * 0.02, -FILLET2_R * 0.02), (FILLET2_R, -FILLET2_R * 0.02))
            Line((FILLET2_R, -FILLET2_R * 0.02), (FILLET2_R, 0))
        make_face()
    fillet2_piece_7b = extrude(amount=17.5, mode=Mode.PRIVATE)
    fillet2_piece_7b = split(fillet2_piece_7b, bisect_by=Plane(origin=(-38.25, 3.413957666, 7), z_dir=(-1, 0, 0)), keep=Keep.TOP, mode=Mode.PRIVATE)
    fillet2_piece_7b = split(fillet2_piece_7b, bisect_by=Plane(origin=(-39.454149009, 3.413957666, 5), z_dir=(0, 0, 1)), keep=Keep.TOP, mode=Mode.PRIVATE)
    fillet2_piece_7b = split(fillet2_piece_7b, bisect_by=Plane(origin=(-39.454149009, 3.413957666, 9), z_dir=(0, 0, -1)), keep=Keep.TOP, mode=Mode.PRIVATE)
    fillet2_piece_7 = fillet2_piece_7a & fillet2_piece_7b
    add(fillet2_piece_7, mode=Mode.SUBTRACT)


solid = part.part
